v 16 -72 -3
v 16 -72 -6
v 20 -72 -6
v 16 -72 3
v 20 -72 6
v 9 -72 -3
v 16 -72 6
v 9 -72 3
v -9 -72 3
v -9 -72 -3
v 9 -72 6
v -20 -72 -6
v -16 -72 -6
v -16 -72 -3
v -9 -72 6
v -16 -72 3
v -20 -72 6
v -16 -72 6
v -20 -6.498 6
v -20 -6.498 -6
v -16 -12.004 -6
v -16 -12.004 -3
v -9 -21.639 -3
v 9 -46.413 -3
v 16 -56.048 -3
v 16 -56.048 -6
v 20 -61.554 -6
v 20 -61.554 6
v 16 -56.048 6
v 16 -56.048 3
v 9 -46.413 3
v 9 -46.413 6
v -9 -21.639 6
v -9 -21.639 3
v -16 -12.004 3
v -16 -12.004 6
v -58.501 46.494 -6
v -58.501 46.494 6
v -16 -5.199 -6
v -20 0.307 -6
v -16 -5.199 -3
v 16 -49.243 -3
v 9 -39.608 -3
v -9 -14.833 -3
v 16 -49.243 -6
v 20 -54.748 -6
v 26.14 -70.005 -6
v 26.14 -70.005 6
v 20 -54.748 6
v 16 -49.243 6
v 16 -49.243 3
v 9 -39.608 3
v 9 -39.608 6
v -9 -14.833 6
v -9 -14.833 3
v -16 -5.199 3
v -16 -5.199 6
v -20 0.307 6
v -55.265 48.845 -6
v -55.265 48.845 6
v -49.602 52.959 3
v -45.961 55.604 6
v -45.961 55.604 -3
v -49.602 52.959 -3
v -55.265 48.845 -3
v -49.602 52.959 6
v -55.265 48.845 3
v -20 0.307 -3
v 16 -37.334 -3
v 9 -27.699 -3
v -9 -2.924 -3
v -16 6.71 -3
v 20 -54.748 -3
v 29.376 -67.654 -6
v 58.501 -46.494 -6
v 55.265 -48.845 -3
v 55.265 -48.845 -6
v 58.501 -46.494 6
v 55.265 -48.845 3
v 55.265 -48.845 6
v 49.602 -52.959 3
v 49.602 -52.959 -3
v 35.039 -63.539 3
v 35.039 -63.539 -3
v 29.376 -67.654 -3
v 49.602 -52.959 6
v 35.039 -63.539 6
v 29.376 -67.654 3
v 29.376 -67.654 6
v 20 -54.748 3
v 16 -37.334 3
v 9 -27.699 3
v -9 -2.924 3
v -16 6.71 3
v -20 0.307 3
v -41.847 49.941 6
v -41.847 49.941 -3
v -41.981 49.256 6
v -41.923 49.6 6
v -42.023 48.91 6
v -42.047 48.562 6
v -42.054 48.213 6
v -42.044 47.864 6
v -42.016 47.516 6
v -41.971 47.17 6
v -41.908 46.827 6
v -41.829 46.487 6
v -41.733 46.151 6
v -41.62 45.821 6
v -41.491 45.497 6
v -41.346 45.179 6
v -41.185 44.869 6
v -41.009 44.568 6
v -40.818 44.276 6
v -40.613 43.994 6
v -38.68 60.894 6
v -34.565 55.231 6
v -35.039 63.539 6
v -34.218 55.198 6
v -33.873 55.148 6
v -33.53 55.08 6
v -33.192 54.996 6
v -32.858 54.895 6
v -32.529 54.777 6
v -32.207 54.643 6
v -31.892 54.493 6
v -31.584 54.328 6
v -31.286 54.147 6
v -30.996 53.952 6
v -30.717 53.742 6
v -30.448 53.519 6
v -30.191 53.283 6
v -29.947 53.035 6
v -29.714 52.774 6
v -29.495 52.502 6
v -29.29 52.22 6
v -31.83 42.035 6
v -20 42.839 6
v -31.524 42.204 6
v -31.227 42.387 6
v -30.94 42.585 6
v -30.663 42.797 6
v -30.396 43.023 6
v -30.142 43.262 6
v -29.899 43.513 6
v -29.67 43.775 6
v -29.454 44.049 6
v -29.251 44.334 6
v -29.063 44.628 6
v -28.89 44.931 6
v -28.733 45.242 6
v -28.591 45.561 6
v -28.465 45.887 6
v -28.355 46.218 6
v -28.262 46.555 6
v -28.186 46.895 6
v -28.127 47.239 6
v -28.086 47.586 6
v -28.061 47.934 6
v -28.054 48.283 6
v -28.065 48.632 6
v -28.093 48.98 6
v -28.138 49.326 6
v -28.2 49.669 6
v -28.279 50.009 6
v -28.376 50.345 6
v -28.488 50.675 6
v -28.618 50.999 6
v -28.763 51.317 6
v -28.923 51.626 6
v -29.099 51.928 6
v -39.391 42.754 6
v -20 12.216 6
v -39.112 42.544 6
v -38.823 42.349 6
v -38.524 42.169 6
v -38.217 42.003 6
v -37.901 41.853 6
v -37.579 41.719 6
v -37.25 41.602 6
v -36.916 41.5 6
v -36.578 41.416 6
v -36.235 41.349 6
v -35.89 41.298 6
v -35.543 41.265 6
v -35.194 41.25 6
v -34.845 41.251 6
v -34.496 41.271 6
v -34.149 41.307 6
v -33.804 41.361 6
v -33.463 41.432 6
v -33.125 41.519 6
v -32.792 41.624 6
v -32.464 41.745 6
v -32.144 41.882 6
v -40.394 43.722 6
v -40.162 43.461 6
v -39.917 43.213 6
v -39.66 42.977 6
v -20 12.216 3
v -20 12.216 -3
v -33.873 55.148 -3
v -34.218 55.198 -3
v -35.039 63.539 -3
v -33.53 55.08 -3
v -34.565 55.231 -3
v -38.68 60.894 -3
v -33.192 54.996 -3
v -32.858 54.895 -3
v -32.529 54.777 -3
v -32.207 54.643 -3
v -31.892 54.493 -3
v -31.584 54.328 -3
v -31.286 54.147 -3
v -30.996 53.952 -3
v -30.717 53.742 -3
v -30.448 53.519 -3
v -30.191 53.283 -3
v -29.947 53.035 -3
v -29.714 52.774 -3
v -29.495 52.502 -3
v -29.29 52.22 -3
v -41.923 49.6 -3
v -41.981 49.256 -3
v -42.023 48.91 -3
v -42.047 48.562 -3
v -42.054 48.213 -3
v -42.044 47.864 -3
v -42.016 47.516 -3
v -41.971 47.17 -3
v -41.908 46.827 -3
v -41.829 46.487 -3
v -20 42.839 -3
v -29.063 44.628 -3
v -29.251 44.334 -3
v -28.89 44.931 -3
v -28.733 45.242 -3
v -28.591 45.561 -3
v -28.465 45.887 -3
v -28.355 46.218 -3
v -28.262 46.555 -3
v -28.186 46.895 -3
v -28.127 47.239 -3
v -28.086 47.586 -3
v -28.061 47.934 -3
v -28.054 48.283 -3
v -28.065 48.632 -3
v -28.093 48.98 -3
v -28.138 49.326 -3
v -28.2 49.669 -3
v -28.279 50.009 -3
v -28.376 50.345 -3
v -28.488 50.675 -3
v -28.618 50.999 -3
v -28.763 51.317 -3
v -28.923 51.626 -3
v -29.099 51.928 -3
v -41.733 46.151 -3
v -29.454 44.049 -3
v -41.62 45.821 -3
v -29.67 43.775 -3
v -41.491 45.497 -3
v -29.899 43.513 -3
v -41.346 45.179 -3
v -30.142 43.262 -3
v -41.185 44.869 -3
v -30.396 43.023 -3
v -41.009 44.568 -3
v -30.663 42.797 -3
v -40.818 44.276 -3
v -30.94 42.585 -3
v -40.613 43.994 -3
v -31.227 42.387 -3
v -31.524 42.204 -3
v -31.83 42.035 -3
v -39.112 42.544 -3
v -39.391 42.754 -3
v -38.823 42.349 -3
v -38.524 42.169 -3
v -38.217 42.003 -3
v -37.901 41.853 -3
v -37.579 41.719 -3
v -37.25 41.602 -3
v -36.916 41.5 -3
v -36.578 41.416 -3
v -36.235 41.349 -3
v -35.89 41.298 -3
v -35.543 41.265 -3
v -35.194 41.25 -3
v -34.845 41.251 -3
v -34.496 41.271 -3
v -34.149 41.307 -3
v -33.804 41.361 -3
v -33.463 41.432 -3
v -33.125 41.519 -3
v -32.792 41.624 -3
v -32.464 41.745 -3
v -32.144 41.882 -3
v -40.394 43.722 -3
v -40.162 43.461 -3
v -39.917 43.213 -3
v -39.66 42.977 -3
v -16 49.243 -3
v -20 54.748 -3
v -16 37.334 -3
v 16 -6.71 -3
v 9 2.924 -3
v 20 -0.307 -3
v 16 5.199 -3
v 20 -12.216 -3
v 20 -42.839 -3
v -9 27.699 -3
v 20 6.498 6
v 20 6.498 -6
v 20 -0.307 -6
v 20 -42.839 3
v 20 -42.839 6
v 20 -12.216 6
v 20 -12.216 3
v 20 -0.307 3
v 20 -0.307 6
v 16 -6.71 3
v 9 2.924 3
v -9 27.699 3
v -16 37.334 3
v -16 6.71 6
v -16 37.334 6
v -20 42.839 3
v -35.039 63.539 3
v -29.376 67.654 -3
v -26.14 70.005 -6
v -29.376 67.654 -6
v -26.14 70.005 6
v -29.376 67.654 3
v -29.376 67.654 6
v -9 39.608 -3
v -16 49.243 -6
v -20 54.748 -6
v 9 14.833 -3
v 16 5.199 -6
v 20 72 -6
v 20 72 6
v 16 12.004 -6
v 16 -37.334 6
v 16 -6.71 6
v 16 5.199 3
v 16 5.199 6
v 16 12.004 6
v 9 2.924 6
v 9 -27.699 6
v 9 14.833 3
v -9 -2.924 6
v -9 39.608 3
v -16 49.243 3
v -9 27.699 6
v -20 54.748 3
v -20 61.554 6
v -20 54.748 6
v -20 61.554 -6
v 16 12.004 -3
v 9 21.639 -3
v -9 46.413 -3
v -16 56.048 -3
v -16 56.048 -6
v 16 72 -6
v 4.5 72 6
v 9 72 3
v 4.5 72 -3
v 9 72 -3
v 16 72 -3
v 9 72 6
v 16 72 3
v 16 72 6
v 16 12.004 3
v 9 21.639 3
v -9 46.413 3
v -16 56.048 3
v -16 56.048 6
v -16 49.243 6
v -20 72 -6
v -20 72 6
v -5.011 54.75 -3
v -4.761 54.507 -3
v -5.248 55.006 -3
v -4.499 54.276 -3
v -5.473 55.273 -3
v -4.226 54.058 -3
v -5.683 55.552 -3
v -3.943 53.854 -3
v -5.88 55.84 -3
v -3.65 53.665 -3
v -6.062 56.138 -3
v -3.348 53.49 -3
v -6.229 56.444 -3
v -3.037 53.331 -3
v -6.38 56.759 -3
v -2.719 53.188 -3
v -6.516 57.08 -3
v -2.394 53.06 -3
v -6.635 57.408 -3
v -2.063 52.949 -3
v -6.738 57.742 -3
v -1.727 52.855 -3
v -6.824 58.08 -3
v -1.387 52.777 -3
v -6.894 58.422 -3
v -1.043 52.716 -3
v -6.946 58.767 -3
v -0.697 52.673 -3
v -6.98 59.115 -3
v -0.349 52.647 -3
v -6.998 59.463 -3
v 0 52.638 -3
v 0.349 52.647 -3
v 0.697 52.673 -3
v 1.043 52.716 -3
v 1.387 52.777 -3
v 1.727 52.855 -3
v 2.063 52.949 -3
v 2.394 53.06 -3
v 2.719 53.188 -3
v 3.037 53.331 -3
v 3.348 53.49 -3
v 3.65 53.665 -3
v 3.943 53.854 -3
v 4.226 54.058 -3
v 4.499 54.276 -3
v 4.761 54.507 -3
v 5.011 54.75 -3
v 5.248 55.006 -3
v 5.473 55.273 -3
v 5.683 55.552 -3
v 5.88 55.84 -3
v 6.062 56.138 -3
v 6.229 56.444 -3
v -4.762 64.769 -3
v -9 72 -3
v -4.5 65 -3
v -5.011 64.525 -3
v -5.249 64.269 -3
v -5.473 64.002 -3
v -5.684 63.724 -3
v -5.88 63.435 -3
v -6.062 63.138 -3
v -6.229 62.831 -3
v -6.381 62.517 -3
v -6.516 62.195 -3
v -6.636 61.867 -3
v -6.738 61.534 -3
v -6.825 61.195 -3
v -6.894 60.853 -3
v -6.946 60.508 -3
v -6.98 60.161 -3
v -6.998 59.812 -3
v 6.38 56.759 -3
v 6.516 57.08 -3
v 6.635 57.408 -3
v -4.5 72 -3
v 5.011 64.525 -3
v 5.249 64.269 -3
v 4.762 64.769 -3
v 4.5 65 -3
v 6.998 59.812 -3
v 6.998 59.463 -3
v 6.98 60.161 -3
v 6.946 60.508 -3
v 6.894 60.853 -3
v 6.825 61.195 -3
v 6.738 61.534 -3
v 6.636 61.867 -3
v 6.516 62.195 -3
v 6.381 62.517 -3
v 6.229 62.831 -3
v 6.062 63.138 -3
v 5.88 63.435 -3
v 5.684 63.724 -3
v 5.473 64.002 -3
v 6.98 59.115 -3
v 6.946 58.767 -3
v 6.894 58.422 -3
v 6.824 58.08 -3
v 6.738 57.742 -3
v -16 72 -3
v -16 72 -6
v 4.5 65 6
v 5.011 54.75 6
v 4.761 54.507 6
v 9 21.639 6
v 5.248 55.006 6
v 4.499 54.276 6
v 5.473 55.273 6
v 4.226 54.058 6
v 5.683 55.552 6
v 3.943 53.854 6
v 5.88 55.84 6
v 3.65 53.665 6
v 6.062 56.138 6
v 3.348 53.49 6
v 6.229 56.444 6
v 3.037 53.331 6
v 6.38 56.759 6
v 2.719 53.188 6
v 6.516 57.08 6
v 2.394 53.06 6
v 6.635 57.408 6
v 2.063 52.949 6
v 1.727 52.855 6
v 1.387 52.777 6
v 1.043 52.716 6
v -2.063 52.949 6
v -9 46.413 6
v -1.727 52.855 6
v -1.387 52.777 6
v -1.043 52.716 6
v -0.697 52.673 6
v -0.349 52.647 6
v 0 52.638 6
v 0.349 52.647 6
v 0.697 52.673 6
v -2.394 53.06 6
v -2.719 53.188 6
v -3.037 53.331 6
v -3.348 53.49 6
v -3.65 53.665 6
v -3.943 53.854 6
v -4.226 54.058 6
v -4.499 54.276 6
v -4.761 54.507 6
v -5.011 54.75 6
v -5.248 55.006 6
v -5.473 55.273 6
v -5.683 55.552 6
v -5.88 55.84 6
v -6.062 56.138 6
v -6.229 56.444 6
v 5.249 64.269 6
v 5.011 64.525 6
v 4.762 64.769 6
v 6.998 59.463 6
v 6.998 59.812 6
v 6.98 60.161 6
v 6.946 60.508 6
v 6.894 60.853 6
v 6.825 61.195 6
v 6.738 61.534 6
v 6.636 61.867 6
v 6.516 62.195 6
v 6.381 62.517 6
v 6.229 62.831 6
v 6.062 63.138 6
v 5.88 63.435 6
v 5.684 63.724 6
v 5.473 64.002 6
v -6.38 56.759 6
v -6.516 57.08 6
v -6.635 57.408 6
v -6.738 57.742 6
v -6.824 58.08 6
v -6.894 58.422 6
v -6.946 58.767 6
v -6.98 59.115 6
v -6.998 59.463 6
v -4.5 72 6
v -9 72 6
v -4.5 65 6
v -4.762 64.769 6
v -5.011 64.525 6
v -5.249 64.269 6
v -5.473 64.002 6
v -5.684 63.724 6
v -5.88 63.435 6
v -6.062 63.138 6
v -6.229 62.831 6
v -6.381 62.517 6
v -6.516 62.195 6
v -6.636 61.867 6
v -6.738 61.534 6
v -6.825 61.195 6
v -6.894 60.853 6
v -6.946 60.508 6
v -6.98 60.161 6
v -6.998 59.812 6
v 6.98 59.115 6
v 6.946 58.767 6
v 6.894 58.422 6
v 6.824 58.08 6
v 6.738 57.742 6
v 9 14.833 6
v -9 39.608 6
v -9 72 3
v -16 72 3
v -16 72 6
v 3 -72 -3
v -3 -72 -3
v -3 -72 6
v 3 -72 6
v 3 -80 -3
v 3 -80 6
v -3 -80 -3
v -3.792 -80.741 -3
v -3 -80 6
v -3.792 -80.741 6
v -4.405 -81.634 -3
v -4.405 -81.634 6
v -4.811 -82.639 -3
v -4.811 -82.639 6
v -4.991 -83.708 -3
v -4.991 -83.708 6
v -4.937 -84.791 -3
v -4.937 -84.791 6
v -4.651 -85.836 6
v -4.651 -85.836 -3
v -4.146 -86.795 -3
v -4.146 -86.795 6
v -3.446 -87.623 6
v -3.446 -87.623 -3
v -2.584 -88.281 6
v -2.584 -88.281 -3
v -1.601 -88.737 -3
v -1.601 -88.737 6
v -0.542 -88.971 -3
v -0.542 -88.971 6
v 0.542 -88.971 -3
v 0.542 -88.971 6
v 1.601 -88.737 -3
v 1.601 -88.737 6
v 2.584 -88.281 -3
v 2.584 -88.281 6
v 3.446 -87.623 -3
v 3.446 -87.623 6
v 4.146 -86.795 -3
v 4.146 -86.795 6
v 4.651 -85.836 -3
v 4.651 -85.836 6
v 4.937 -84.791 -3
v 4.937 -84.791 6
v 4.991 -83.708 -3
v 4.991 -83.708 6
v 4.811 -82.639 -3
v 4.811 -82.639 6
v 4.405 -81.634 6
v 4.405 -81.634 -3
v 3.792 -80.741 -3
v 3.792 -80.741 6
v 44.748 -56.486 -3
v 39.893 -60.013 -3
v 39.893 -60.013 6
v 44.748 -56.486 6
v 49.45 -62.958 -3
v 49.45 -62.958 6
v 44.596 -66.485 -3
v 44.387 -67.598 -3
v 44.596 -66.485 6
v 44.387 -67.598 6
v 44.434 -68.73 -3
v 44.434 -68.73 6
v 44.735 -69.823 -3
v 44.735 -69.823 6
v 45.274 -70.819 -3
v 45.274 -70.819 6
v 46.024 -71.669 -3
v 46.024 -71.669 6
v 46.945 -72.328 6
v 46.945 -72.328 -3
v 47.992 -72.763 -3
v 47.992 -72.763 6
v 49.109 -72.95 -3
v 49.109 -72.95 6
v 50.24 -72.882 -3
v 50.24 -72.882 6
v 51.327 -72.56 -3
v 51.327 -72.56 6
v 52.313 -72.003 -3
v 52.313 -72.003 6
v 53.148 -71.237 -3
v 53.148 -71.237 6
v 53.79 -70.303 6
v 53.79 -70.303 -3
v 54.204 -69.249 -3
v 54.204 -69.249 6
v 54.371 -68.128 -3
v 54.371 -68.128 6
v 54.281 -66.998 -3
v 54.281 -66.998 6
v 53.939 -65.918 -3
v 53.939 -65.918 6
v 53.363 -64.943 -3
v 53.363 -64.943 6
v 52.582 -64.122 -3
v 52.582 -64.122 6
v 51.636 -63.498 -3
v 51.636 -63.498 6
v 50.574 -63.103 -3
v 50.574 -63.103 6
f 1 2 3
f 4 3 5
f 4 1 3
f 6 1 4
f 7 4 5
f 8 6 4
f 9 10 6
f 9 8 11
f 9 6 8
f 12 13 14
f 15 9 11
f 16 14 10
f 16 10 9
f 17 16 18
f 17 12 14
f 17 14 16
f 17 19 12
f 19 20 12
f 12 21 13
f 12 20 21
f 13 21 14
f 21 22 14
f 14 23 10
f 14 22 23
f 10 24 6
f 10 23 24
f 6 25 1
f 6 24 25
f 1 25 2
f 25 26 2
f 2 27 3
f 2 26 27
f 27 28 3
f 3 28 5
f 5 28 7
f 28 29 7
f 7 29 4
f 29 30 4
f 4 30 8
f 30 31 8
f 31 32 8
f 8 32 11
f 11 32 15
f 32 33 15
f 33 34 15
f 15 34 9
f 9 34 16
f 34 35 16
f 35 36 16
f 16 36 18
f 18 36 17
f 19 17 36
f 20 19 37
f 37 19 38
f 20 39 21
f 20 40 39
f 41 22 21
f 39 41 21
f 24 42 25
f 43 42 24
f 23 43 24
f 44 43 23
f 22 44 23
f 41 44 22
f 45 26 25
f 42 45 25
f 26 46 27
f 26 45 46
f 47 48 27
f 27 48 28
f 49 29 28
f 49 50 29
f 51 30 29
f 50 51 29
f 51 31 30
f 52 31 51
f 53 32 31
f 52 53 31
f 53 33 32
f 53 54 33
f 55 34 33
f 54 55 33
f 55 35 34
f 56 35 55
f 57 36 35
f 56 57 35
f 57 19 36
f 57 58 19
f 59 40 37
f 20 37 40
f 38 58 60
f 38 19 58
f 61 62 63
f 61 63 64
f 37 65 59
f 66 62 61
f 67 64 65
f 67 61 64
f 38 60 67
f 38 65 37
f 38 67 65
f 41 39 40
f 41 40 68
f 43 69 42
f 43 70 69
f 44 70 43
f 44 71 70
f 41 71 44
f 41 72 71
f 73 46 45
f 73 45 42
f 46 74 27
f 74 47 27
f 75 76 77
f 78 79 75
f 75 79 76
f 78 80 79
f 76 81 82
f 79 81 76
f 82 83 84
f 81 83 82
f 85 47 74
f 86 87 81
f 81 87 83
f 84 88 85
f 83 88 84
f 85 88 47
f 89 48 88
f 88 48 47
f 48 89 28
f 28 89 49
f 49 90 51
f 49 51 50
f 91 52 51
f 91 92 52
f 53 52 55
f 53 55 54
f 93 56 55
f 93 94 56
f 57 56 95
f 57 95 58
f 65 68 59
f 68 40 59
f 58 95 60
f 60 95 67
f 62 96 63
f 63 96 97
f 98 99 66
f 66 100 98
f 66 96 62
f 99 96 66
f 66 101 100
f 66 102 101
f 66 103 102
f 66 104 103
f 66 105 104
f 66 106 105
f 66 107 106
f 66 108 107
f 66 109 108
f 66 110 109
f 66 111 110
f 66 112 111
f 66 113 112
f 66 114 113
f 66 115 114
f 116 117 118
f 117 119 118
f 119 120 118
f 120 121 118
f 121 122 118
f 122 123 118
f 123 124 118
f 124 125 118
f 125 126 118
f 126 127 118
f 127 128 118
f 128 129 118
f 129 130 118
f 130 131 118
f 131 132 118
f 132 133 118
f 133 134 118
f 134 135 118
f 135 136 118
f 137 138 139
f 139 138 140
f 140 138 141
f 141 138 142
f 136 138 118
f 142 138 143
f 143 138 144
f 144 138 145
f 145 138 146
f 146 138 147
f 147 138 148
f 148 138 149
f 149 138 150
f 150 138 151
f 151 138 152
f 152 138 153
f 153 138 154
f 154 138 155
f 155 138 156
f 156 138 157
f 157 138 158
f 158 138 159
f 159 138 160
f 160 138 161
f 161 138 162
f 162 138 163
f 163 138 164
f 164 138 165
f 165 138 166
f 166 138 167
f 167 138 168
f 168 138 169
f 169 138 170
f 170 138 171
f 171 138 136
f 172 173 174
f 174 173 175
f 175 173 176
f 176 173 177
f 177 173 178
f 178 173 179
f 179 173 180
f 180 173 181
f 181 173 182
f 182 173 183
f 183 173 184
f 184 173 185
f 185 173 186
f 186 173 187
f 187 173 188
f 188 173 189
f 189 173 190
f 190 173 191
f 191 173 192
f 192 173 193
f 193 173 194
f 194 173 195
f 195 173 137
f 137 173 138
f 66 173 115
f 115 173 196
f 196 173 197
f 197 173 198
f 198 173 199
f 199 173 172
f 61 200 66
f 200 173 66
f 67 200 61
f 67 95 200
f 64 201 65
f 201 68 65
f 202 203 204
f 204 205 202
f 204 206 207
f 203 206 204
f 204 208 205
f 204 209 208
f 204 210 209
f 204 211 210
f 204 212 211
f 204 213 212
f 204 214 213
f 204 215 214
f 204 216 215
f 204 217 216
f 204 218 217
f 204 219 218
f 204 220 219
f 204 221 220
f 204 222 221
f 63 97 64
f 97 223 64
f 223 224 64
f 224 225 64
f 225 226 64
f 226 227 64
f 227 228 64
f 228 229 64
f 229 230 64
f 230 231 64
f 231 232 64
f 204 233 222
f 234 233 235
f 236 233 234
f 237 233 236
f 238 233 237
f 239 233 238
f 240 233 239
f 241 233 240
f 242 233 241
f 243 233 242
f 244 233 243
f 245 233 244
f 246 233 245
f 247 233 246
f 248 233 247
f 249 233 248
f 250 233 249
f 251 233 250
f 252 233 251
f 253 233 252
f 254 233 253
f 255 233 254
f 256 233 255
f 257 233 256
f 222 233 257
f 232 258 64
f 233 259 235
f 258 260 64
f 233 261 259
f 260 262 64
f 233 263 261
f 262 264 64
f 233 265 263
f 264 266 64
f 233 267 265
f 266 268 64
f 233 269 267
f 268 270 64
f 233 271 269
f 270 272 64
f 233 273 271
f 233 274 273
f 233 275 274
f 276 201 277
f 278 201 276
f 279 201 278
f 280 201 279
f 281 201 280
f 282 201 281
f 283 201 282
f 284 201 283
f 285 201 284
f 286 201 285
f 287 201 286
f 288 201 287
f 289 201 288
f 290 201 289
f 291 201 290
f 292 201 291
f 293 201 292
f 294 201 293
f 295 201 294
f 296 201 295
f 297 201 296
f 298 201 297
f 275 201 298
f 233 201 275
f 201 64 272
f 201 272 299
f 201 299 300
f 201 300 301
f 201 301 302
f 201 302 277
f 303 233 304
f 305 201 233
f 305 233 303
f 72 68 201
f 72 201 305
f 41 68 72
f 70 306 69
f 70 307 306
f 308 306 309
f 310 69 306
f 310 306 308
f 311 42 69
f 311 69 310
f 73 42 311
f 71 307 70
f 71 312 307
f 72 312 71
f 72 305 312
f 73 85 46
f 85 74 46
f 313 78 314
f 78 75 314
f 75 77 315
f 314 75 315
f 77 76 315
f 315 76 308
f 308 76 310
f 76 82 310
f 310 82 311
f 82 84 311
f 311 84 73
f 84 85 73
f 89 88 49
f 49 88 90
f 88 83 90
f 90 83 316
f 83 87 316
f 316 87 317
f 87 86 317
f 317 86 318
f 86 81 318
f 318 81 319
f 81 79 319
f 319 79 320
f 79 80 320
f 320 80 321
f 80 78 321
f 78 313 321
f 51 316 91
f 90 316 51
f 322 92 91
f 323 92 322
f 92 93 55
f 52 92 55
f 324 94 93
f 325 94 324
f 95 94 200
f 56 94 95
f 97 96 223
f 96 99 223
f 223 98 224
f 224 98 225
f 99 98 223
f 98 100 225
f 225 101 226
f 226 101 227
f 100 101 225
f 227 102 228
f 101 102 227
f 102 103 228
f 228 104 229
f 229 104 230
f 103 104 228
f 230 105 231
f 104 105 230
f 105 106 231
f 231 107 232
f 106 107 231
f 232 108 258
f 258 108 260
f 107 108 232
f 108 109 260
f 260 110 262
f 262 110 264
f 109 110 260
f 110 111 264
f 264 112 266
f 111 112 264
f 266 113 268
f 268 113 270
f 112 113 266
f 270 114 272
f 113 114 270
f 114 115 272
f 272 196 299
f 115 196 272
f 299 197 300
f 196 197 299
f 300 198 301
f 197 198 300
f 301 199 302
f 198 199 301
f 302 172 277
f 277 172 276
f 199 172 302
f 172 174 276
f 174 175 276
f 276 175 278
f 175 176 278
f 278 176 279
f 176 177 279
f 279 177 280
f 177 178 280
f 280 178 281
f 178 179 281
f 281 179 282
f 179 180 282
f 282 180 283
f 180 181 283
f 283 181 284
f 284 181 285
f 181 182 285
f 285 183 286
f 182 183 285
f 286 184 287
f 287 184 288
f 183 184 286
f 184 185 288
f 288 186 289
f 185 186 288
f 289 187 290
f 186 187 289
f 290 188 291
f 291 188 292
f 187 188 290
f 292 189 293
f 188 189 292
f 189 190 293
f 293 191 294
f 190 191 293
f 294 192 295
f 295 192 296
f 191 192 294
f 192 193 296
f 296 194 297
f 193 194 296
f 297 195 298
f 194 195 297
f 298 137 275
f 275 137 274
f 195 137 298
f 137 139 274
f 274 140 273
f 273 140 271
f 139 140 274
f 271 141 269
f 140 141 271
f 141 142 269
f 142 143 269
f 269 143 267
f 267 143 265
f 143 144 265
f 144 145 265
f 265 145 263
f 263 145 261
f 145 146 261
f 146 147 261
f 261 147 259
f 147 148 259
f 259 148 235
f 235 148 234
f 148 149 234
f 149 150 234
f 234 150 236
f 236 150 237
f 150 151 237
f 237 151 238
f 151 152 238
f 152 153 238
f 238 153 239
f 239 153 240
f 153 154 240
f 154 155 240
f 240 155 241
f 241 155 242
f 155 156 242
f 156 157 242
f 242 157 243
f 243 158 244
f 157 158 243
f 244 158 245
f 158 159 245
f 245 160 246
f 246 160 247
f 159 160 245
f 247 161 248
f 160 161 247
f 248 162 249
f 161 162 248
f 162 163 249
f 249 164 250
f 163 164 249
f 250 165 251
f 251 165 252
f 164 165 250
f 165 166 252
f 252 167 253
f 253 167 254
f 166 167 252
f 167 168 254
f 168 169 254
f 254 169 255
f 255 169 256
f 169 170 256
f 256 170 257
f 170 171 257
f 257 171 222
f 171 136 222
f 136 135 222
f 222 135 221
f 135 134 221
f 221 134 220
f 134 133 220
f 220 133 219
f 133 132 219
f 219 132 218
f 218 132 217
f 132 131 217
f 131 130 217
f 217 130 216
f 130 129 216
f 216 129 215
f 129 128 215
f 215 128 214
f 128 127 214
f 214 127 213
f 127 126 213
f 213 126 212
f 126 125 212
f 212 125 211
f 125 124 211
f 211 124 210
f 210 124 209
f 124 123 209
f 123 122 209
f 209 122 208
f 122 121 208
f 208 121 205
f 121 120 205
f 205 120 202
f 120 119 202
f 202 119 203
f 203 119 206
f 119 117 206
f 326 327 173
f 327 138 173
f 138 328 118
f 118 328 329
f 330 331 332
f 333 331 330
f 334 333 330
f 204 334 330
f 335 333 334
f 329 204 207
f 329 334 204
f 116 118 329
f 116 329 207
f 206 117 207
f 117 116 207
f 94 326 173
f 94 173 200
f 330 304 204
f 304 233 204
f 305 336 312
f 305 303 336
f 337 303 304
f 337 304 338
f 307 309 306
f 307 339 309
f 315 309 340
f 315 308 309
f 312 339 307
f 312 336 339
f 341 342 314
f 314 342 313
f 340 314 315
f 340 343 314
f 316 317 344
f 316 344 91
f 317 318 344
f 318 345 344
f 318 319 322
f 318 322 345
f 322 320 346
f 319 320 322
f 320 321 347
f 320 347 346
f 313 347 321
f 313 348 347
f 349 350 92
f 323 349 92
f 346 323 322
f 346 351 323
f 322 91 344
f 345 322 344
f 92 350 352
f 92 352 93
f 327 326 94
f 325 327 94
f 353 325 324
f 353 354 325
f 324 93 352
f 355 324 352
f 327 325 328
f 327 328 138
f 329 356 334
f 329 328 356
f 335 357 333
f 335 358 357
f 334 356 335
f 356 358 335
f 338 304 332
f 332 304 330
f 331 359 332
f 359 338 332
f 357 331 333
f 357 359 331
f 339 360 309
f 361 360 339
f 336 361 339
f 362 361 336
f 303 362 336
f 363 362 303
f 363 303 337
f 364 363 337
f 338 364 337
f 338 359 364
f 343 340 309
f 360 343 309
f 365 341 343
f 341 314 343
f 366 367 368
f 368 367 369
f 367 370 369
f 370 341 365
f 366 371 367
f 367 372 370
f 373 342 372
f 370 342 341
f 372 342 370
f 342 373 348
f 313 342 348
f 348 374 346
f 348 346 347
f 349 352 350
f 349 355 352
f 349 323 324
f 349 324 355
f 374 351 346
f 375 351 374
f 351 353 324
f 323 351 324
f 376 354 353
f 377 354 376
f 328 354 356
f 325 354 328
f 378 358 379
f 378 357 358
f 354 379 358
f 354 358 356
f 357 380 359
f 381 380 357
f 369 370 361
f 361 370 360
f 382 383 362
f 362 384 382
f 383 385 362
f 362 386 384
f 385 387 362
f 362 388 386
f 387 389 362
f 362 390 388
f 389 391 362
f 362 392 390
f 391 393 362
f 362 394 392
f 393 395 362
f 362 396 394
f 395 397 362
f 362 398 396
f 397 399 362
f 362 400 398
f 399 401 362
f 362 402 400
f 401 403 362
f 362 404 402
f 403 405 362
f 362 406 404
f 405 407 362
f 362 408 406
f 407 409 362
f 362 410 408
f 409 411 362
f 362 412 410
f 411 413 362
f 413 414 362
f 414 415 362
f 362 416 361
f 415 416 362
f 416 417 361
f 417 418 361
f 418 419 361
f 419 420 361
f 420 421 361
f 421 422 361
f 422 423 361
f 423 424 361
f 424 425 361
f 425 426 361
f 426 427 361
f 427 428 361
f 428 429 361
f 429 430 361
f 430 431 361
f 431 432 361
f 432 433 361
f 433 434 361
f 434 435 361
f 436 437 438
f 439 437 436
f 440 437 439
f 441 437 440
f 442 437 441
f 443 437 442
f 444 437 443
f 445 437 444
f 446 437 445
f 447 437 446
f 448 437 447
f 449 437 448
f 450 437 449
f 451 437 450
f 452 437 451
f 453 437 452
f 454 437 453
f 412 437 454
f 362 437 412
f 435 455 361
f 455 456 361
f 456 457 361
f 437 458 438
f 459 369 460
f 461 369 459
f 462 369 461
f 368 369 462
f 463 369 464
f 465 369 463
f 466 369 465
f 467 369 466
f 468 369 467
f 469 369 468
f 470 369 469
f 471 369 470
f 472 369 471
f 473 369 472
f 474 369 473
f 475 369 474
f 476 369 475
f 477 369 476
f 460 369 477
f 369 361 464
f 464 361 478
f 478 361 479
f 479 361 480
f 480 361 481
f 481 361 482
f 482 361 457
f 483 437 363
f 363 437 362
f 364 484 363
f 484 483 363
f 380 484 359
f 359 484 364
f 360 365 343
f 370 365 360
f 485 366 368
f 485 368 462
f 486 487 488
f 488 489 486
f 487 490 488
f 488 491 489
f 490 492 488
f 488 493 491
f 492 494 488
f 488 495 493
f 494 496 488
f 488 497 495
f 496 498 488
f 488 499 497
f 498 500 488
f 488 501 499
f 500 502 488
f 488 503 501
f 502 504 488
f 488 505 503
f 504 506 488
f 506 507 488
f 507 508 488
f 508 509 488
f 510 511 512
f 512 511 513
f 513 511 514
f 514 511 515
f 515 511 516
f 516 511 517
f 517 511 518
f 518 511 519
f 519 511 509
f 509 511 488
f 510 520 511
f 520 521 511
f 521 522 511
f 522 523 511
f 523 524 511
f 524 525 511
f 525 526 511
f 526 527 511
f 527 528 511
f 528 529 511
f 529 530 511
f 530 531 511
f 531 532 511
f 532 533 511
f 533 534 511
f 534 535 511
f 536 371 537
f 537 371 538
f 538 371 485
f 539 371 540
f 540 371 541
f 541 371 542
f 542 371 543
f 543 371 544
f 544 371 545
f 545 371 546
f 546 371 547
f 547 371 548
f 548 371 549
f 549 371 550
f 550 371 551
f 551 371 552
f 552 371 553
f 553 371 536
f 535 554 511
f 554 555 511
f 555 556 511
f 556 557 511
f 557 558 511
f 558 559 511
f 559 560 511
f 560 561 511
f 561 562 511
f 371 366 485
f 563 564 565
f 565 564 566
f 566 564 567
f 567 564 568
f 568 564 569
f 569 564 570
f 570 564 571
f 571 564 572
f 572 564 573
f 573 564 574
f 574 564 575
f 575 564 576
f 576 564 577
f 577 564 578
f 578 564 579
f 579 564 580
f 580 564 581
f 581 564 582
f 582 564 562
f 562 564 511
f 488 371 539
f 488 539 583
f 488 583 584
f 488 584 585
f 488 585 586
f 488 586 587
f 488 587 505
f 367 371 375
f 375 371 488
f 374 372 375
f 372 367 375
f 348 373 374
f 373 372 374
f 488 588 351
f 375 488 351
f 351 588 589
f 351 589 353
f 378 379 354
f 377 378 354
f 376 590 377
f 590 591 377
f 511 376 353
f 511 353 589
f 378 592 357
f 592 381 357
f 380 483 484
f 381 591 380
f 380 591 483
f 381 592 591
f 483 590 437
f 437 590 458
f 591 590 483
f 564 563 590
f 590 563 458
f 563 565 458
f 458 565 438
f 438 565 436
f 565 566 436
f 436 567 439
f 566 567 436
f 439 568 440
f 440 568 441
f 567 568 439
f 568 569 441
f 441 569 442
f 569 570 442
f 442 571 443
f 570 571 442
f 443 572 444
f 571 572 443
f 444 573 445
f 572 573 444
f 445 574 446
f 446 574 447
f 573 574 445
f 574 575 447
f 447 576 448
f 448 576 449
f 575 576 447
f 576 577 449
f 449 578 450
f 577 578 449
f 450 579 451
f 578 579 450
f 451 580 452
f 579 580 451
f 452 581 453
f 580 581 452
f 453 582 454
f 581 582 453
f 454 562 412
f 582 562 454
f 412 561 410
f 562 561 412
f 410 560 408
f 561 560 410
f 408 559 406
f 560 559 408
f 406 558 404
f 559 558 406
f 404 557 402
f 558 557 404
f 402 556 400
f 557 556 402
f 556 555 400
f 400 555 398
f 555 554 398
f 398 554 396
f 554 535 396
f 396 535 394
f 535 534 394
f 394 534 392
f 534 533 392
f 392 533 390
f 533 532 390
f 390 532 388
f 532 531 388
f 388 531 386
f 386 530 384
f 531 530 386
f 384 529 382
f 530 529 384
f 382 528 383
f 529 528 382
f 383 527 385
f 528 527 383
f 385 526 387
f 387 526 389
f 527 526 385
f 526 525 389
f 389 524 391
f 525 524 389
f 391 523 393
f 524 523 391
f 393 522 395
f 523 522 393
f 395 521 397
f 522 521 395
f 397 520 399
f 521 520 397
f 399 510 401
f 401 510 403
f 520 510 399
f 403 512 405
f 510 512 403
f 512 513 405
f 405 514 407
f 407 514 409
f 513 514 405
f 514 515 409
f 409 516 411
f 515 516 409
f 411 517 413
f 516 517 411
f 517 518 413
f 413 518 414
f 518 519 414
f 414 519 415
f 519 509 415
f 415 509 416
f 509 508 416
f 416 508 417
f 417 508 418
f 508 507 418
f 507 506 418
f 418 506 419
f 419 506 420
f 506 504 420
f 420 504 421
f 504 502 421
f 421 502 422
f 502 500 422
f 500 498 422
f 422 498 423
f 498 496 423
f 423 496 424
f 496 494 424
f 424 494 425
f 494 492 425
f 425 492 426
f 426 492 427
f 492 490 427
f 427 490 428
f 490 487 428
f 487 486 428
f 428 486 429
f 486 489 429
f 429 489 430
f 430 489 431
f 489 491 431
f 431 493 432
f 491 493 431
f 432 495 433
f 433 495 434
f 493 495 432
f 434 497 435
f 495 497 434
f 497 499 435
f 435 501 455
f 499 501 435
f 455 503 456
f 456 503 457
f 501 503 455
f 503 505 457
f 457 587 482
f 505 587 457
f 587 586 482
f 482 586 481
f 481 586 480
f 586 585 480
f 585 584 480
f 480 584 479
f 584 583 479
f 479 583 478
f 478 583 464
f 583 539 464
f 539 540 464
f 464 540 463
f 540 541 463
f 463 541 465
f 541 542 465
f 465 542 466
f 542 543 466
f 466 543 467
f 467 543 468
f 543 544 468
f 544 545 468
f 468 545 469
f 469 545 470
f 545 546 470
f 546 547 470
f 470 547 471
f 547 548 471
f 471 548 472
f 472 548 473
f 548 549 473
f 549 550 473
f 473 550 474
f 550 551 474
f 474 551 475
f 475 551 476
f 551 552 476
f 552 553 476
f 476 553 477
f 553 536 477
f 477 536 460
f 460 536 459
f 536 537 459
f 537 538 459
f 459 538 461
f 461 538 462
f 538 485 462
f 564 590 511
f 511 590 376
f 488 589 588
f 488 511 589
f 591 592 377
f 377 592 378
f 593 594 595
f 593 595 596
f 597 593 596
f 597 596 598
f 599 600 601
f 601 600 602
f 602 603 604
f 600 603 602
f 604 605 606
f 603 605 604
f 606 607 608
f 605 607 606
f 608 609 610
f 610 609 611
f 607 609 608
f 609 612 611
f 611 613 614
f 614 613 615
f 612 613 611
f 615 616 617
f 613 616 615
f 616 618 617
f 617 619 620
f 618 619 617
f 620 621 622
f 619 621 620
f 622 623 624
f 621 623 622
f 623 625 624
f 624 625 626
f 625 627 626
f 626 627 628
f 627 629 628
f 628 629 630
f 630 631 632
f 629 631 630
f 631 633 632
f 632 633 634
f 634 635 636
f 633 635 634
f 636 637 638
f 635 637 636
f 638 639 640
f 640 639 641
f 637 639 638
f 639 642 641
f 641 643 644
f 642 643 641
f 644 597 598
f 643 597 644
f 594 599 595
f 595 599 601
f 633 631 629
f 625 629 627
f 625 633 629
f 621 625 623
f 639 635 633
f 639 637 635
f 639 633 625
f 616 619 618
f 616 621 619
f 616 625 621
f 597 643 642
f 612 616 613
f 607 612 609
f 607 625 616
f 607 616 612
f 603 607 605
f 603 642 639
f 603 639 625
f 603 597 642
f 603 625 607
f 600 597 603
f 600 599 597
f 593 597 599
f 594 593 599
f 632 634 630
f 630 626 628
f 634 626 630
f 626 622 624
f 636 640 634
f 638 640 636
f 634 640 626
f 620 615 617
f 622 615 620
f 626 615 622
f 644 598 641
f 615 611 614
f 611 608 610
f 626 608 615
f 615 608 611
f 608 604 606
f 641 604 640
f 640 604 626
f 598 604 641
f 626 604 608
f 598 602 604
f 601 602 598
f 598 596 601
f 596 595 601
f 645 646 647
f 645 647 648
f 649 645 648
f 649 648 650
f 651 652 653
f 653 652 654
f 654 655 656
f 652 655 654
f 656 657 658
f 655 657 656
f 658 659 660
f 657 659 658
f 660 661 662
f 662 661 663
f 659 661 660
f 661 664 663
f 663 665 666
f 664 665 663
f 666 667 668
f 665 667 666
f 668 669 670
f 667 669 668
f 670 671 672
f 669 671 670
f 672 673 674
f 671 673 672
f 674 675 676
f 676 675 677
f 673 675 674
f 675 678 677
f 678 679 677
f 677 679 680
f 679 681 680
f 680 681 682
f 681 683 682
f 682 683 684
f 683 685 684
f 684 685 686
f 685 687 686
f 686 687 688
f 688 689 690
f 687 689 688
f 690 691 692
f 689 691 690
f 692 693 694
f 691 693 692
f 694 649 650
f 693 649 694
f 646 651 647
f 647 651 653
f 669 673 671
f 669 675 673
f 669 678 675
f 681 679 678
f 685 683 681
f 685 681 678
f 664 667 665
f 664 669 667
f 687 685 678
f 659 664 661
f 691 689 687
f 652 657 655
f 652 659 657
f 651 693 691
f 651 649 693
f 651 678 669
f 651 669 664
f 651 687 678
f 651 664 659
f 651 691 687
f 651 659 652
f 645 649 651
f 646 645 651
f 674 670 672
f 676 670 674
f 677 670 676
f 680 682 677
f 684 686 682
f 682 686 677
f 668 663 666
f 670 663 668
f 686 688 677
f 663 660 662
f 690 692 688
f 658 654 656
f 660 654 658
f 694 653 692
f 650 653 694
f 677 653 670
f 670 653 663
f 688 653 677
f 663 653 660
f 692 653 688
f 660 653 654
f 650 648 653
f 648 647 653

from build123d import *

# Parameters (mm, degrees)
SKETCH004_W          = 32
SKETCH004_H          = 3
SKETCH005_W          = 32
SKETCH005_H          = 3
SKETCH006_W          = 7
SKETCH006_H          = 3
SKETCH007_W          = 7
SKETCH007_H          = 3
SKETCH008_W          = 7
SKETCH008_H          = 3
SKETCH009_W          = 7
SKETCH009_H          = 3
POCKET_DEPTH         = 6.001
POCKET_DEPTH_BACK    = 6.001
POCKET001_DEPTH      = 6.001
POCKET001_DEPTH_BACK = 6.001
PAD_DEPTH            = 6
PAD_DEPTH_BACK       = 3
PAD001_DEPTH         = 6
PAD001_DEPTH_BACK    = 3


with BuildPart() as body:
    # AdditivePipe: sweep along a path in Sketch
    with BuildLine(Plane.XY) as additivepipe_path:
        Line((0, -72), (0, 72))
    # Sketch002 (on DatumPlane) → AdditivePipe (sweep)
    with BuildSketch(Plane.XZ.offset(72)):
        Polygon((-20, 6), (-20, -6), (-16, -6), (-16, -3), (-9, -3), (9, -3), (16, -3), (16, -6), (20, -6), (20, 6), (16, 6), (16, 3), (9, 3), (9, 6), (-9, 6), (-9, 3), (-16, 3), (-16, 6), align=None)
    sweep(path=additivepipe_path.line)

    # AdditivePipe001: sweep along a path in Sketch001
    with BuildLine(Plane.XY) as additivepipe001_path:
        Line((-42.3205381651, 58.249223595), (42.3205381651, -58.249223595))
    # Sketch003 (on DatumPlane) → AdditivePipe001 (sweep)
    with BuildSketch(Plane(origin=(-42.3205381651, 58.249223595, 0), x_dir=(-0.8090169944, -0.5877852523, 0), z_dir=(-0.5877852523, 0.8090169944, 0))):
        Polygon((-20, 6), (-20, -6), (-16, -6), (-16, -3), (-9, -3), (9, -3), (16, -3), (16, -6), (20, -6), (20, 6), (16, 6), (16, 3), (9, 3), (9, 6), (-9, 6), (-9, 3), (-16, 3), (-16, 6), align=None)
    sweep(path=additivepipe001_path.line)

    # SubtractivePipe: sweep along a path in Sketch
    with BuildLine(Plane.XY) as subtractivepipe_path:
        Line((0, -72), (0, 72))
    # Sketch004 (on DatumPlane) → SubtractivePipe (sweep, cut)
    with BuildSketch(Plane.XZ.offset(72)):
        with Locations((0, -4.5)):
            Rectangle(SKETCH004_W, SKETCH004_H)
    sweep(path=subtractivepipe_path.line, mode=Mode.SUBTRACT)

    # SubtractivePipe001: sweep along a path in Sketch001
    with BuildLine(Plane.XY) as subtractivepipe001_path:
        Line((-42.3205381651, 58.249223595), (42.3205381651, -58.249223595))
    # Sketch005 (on DatumPlane) → SubtractivePipe001 (sweep, cut)
    with BuildSketch(Plane(origin=(-42.3205381651, 58.249223595, 0), x_dir=(-0.8090169944, -0.5877852523, 0), z_dir=(-0.5877852523, 0.8090169944, 0))):
        with Locations((0, -4.5)):
            Rectangle(SKETCH005_W, SKETCH005_H)
    sweep(path=subtractivepipe001_path.line, mode=Mode.SUBTRACT)

    # SubtractivePipe002: sweep along a path in Sketch
    with BuildLine(Plane.XY) as subtractivepipe002_path:
        Line((0, -72), (0, 72))
    # Sketch006 (on DatumPlane) → SubtractivePipe002 (sweep, cut)
    with BuildSketch(Plane.XZ.offset(72)):
        with Locations((-12.5, 4.5)):
            Rectangle(SKETCH006_W, SKETCH006_H)
    sweep(path=subtractivepipe002_path.line, mode=Mode.SUBTRACT)

    # SubtractivePipe003: sweep along a path in Sketch
    with BuildLine(Plane.XY) as subtractivepipe003_path:
        Line((0, -72), (0, 72))
    # Sketch007 (on DatumPlane) → SubtractivePipe003 (sweep, cut)
    with BuildSketch(Plane.XZ.offset(72)):
        with Locations((12.5, 4.5)):
            Rectangle(SKETCH007_W, SKETCH007_H)
    sweep(path=subtractivepipe003_path.line, mode=Mode.SUBTRACT)

    # SubtractivePipe004: sweep along a path in Sketch001
    with BuildLine(Plane.XY) as subtractivepipe004_path:
        Line((-42.3205381651, 58.249223595), (42.3205381651, -58.249223595))
    # Sketch008 (on DatumPlane) → SubtractivePipe004 (sweep, cut)
    with BuildSketch(Plane(origin=(-42.3205381651, 58.249223595, 0), x_dir=(-0.8090169944, -0.5877852523, 0), z_dir=(-0.5877852523, 0.8090169944, 0))):
        with Locations((-12.5, 4.5)):
            Rectangle(SKETCH008_W, SKETCH008_H)
    sweep(path=subtractivepipe004_path.line, mode=Mode.SUBTRACT)

    # SubtractivePipe005: sweep along a path in Sketch001
    with BuildLine(Plane.XY) as subtractivepipe005_path:
        Line((-42.3205381651, 58.249223595), (42.3205381651, -58.249223595))
    # Sketch009 (on DatumPlane) → SubtractivePipe005 (sweep, cut)
    with BuildSketch(Plane(origin=(-42.3205381651, 58.249223595, 0), x_dir=(-0.8090169944, -0.5877852523, 0), z_dir=(-0.5877852523, 0.8090169944, 0))):
        with Locations((12.5, 4.5)):
            Rectangle(SKETCH009_W, SKETCH009_H)
    sweep(path=subtractivepipe005_path.line, mode=Mode.SUBTRACT)

    # Sketch010 → Pocket (cut, two sides)
    with BuildSketch(Plane.XY) as pocket_sk:
        with BuildLine():
            Line((-4.5, 72), (4.5, 72))
            Line((4.5, 72), (4.5, 65))
            ThreePointArc((-4.5, 65), (0, 52.6380973526), (4.5, 65))
            Line((-4.5, 72), (-4.5, 65))
        make_face()
    extrude(amount=-POCKET_DEPTH, mode=Mode.SUBTRACT)
    extrude(pocket_sk.sketch, amount=POCKET_DEPTH_BACK, mode=Mode.SUBTRACT)

    # Sketch011 → Pocket001 (cut, two sides)
    with BuildSketch(Plane.XY) as pocket001_sk:
        with BuildLine():
            Line((-45.9611146397, 55.6041899597), (-38.6799616904, 60.8942572303))
            Line((-34.5654649243, 55.2311382696), (-38.6799616904, 60.8942572303))
            ThreePointArc((-41.8466178737, 49.941070999), (-30.9398973326, 42.5851153098), (-34.5654649243, 55.2311382696))
            Line((-45.9611146397, 55.6041899597), (-41.8466178737, 49.941070999))
        make_face()
    extrude(amount=-POCKET001_DEPTH, mode=Mode.SUBTRACT)
    extrude(pocket001_sk.sketch, amount=POCKET001_DEPTH_BACK, mode=Mode.SUBTRACT)


with BuildPart() as body001:
    # Sketch012 → Pad (new body, two sides)
    with BuildSketch(Plane.XY) as pad_sk:
        with BuildLine():
            Line((-3, -72), (3, -72))
            Line((3, -72), (3, -80))
            ThreePointArc((-3, -80), (0, -89), (3, -80))
            Line((-3, -72), (-3, -80))
        make_face()
    extrude(amount=PAD_DEPTH)
    extrude(pad_sk.sketch, amount=-PAD_DEPTH_BACK)


with BuildPart() as body002:
    # Sketch013 → Pad001 (new body, two sides)
    with BuildSketch(Plane.XY) as pad001_sk:
        with BuildLine():
            Line((39.8934871819, -60.0125793519), (44.7475891482, -56.4858678381))
            Line((44.7475891482, -56.4858678381), (49.4498711665, -62.9580037931))
            ThreePointArc((44.5957692003, -66.4847153069), (52.312887454, -72.0025124994), (49.4498711665, -62.9580037931))
            Line((39.8934871819, -60.0125793519), (44.5957692003, -66.4847153069))
        make_face()
    extrude(amount=PAD001_DEPTH)
    extrude(pad001_sk.sketch, amount=-PAD001_DEPTH_BACK)


solid = Compound([body.part, body001.part, body002.part])
